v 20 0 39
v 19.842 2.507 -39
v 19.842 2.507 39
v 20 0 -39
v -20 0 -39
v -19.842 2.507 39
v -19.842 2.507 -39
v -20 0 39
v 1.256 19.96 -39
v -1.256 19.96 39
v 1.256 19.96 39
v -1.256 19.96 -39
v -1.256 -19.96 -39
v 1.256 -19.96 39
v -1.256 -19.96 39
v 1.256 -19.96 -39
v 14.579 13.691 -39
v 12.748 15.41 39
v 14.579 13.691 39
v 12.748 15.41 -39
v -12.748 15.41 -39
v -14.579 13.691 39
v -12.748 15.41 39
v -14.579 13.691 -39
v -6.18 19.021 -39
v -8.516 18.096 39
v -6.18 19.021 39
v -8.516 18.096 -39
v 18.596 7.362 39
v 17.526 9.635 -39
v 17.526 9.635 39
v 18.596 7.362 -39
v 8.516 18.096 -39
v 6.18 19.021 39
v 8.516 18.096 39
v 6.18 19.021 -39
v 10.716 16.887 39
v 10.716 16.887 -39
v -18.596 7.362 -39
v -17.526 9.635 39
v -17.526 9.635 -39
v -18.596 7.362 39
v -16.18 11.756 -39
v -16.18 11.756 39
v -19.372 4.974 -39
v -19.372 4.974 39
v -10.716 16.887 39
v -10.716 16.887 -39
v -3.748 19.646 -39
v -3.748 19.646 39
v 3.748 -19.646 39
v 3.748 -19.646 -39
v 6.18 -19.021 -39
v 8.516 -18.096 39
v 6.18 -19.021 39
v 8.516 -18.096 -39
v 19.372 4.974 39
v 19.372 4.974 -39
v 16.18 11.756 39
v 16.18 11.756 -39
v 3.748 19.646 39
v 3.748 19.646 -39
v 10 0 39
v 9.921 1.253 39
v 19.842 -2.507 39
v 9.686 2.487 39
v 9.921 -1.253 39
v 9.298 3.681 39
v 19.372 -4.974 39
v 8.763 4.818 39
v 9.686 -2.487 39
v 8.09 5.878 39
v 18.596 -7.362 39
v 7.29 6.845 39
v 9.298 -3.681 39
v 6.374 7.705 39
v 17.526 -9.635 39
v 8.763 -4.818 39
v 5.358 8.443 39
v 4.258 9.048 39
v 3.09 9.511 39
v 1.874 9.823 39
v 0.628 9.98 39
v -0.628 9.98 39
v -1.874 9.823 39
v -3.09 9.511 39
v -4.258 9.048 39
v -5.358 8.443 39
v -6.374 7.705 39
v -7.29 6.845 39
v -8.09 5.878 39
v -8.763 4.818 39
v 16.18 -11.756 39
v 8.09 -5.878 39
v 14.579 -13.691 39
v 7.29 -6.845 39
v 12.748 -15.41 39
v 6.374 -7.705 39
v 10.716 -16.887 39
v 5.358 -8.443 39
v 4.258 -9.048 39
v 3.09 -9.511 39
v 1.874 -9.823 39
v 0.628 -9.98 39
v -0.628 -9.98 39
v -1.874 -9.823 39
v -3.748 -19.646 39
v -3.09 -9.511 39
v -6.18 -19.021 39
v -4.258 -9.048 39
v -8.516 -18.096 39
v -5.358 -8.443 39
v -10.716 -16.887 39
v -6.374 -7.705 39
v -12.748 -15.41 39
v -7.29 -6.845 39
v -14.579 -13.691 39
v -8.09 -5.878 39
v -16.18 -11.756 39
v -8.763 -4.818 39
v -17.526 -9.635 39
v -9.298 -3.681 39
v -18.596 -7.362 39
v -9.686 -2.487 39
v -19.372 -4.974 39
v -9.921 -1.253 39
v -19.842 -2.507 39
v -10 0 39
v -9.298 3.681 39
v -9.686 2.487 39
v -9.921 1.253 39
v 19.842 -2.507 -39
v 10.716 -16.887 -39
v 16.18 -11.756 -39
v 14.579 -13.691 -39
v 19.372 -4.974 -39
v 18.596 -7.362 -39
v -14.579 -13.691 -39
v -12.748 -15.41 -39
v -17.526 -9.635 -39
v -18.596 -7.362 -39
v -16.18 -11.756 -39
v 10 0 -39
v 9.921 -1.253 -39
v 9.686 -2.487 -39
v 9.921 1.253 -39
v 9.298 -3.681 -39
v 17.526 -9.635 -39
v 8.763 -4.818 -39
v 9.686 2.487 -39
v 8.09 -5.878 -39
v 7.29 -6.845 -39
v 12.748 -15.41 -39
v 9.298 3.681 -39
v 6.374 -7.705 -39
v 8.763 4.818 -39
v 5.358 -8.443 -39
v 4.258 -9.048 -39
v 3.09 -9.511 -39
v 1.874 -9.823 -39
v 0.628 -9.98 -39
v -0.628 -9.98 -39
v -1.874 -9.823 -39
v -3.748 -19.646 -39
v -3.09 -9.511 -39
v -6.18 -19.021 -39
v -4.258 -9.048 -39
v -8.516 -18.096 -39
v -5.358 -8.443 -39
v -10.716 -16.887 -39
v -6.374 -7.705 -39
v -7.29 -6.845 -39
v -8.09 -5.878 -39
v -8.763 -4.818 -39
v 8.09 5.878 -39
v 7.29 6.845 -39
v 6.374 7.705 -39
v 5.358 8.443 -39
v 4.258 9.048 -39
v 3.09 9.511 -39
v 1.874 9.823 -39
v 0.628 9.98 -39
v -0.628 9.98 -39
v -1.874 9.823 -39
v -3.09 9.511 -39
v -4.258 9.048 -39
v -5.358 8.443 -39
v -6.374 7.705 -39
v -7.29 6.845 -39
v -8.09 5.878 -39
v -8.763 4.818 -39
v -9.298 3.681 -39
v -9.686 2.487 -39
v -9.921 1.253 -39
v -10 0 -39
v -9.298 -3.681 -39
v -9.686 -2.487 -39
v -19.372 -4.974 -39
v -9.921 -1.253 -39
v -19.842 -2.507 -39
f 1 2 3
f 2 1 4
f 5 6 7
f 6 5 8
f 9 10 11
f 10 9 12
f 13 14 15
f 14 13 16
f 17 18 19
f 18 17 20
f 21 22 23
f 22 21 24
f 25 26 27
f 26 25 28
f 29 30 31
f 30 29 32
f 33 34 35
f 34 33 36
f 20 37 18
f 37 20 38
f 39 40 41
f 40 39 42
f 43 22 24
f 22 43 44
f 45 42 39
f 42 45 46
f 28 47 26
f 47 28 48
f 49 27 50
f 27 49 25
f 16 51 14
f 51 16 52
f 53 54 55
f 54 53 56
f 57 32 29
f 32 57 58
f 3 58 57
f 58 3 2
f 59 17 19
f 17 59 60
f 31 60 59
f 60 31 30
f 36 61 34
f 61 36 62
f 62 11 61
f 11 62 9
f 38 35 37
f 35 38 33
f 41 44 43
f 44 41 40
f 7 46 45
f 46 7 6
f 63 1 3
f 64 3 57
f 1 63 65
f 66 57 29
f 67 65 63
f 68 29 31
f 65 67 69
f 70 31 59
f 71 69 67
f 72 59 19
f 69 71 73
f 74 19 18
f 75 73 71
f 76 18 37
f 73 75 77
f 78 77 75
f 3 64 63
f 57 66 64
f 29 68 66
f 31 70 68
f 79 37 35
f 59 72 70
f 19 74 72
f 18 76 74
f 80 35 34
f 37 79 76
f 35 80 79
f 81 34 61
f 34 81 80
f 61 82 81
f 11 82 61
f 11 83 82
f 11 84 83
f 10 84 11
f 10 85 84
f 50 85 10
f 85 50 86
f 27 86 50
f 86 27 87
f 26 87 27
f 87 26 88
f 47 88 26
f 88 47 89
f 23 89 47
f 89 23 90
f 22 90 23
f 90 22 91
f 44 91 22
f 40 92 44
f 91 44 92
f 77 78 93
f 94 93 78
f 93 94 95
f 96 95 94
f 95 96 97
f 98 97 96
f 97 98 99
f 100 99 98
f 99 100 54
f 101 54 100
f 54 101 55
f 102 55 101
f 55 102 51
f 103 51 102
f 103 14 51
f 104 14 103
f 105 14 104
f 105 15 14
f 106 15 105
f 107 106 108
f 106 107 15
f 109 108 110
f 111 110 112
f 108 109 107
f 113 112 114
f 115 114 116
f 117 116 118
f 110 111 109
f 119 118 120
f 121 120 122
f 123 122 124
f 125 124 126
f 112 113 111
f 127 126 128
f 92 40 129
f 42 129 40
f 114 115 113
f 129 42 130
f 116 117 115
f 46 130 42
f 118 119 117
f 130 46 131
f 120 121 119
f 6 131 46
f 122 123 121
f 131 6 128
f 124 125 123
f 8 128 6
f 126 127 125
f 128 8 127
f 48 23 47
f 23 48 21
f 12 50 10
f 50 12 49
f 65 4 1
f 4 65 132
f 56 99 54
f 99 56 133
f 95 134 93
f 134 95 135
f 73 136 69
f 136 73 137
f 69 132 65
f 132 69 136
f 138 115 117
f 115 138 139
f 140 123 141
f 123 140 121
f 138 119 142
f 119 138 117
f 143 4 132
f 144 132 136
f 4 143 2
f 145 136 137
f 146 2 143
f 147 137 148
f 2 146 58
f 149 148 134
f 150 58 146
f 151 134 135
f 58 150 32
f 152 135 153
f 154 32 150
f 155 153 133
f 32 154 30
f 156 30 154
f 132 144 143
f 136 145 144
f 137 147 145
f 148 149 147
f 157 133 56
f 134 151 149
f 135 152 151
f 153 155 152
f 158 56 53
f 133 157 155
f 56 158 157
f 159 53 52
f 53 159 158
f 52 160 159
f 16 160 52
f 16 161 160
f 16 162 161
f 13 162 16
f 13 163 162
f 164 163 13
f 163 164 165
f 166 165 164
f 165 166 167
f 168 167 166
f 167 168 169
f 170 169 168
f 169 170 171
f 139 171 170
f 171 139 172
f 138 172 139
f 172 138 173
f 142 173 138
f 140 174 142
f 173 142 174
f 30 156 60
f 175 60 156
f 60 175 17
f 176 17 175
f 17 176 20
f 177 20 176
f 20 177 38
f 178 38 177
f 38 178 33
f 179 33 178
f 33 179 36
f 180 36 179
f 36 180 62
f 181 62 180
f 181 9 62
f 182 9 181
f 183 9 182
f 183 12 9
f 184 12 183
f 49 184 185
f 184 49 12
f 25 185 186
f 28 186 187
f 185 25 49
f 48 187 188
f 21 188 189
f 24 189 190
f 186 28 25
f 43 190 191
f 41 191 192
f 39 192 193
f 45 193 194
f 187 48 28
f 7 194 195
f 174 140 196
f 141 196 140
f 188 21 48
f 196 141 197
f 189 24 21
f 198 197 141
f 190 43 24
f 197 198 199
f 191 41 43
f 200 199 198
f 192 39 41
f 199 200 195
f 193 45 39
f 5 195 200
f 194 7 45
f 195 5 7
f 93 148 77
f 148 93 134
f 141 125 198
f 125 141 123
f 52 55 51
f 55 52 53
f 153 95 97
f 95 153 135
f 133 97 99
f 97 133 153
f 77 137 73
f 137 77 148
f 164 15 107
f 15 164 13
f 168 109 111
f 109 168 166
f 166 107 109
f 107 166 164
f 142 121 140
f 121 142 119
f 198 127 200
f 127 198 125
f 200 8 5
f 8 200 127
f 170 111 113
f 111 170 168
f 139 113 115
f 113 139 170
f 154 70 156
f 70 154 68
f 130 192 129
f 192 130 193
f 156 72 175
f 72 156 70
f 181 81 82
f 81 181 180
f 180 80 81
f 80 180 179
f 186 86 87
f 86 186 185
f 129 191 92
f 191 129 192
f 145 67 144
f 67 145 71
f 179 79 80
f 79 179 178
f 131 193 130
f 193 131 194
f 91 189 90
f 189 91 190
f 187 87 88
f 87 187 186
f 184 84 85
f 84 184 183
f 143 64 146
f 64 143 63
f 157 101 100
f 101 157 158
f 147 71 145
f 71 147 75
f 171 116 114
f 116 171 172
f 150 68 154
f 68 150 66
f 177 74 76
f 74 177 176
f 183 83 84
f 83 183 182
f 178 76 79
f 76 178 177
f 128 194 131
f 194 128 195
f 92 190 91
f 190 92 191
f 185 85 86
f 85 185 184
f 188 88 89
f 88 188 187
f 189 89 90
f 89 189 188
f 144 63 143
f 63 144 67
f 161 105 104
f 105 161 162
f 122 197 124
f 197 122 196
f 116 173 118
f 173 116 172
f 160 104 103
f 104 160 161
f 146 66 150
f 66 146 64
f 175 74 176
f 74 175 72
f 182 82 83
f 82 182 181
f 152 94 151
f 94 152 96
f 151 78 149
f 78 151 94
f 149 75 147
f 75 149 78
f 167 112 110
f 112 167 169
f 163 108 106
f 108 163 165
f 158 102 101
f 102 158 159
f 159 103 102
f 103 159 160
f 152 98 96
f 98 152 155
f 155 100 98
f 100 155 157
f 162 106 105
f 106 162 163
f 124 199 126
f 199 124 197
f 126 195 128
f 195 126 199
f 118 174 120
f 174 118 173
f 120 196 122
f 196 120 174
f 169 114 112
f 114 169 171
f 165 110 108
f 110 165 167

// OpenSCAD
$fn = 50;


difference() {
	union() {
		translate(v = [0, 0, -39.0000000000]) {
			cylinder(h = 78, r = 20.0000000000);
		}
	}
	union() {
		translate(v = [0, 0, -100.0000000000]) {
			cylinder(h = 200, r = 10);
		}
	}
}
